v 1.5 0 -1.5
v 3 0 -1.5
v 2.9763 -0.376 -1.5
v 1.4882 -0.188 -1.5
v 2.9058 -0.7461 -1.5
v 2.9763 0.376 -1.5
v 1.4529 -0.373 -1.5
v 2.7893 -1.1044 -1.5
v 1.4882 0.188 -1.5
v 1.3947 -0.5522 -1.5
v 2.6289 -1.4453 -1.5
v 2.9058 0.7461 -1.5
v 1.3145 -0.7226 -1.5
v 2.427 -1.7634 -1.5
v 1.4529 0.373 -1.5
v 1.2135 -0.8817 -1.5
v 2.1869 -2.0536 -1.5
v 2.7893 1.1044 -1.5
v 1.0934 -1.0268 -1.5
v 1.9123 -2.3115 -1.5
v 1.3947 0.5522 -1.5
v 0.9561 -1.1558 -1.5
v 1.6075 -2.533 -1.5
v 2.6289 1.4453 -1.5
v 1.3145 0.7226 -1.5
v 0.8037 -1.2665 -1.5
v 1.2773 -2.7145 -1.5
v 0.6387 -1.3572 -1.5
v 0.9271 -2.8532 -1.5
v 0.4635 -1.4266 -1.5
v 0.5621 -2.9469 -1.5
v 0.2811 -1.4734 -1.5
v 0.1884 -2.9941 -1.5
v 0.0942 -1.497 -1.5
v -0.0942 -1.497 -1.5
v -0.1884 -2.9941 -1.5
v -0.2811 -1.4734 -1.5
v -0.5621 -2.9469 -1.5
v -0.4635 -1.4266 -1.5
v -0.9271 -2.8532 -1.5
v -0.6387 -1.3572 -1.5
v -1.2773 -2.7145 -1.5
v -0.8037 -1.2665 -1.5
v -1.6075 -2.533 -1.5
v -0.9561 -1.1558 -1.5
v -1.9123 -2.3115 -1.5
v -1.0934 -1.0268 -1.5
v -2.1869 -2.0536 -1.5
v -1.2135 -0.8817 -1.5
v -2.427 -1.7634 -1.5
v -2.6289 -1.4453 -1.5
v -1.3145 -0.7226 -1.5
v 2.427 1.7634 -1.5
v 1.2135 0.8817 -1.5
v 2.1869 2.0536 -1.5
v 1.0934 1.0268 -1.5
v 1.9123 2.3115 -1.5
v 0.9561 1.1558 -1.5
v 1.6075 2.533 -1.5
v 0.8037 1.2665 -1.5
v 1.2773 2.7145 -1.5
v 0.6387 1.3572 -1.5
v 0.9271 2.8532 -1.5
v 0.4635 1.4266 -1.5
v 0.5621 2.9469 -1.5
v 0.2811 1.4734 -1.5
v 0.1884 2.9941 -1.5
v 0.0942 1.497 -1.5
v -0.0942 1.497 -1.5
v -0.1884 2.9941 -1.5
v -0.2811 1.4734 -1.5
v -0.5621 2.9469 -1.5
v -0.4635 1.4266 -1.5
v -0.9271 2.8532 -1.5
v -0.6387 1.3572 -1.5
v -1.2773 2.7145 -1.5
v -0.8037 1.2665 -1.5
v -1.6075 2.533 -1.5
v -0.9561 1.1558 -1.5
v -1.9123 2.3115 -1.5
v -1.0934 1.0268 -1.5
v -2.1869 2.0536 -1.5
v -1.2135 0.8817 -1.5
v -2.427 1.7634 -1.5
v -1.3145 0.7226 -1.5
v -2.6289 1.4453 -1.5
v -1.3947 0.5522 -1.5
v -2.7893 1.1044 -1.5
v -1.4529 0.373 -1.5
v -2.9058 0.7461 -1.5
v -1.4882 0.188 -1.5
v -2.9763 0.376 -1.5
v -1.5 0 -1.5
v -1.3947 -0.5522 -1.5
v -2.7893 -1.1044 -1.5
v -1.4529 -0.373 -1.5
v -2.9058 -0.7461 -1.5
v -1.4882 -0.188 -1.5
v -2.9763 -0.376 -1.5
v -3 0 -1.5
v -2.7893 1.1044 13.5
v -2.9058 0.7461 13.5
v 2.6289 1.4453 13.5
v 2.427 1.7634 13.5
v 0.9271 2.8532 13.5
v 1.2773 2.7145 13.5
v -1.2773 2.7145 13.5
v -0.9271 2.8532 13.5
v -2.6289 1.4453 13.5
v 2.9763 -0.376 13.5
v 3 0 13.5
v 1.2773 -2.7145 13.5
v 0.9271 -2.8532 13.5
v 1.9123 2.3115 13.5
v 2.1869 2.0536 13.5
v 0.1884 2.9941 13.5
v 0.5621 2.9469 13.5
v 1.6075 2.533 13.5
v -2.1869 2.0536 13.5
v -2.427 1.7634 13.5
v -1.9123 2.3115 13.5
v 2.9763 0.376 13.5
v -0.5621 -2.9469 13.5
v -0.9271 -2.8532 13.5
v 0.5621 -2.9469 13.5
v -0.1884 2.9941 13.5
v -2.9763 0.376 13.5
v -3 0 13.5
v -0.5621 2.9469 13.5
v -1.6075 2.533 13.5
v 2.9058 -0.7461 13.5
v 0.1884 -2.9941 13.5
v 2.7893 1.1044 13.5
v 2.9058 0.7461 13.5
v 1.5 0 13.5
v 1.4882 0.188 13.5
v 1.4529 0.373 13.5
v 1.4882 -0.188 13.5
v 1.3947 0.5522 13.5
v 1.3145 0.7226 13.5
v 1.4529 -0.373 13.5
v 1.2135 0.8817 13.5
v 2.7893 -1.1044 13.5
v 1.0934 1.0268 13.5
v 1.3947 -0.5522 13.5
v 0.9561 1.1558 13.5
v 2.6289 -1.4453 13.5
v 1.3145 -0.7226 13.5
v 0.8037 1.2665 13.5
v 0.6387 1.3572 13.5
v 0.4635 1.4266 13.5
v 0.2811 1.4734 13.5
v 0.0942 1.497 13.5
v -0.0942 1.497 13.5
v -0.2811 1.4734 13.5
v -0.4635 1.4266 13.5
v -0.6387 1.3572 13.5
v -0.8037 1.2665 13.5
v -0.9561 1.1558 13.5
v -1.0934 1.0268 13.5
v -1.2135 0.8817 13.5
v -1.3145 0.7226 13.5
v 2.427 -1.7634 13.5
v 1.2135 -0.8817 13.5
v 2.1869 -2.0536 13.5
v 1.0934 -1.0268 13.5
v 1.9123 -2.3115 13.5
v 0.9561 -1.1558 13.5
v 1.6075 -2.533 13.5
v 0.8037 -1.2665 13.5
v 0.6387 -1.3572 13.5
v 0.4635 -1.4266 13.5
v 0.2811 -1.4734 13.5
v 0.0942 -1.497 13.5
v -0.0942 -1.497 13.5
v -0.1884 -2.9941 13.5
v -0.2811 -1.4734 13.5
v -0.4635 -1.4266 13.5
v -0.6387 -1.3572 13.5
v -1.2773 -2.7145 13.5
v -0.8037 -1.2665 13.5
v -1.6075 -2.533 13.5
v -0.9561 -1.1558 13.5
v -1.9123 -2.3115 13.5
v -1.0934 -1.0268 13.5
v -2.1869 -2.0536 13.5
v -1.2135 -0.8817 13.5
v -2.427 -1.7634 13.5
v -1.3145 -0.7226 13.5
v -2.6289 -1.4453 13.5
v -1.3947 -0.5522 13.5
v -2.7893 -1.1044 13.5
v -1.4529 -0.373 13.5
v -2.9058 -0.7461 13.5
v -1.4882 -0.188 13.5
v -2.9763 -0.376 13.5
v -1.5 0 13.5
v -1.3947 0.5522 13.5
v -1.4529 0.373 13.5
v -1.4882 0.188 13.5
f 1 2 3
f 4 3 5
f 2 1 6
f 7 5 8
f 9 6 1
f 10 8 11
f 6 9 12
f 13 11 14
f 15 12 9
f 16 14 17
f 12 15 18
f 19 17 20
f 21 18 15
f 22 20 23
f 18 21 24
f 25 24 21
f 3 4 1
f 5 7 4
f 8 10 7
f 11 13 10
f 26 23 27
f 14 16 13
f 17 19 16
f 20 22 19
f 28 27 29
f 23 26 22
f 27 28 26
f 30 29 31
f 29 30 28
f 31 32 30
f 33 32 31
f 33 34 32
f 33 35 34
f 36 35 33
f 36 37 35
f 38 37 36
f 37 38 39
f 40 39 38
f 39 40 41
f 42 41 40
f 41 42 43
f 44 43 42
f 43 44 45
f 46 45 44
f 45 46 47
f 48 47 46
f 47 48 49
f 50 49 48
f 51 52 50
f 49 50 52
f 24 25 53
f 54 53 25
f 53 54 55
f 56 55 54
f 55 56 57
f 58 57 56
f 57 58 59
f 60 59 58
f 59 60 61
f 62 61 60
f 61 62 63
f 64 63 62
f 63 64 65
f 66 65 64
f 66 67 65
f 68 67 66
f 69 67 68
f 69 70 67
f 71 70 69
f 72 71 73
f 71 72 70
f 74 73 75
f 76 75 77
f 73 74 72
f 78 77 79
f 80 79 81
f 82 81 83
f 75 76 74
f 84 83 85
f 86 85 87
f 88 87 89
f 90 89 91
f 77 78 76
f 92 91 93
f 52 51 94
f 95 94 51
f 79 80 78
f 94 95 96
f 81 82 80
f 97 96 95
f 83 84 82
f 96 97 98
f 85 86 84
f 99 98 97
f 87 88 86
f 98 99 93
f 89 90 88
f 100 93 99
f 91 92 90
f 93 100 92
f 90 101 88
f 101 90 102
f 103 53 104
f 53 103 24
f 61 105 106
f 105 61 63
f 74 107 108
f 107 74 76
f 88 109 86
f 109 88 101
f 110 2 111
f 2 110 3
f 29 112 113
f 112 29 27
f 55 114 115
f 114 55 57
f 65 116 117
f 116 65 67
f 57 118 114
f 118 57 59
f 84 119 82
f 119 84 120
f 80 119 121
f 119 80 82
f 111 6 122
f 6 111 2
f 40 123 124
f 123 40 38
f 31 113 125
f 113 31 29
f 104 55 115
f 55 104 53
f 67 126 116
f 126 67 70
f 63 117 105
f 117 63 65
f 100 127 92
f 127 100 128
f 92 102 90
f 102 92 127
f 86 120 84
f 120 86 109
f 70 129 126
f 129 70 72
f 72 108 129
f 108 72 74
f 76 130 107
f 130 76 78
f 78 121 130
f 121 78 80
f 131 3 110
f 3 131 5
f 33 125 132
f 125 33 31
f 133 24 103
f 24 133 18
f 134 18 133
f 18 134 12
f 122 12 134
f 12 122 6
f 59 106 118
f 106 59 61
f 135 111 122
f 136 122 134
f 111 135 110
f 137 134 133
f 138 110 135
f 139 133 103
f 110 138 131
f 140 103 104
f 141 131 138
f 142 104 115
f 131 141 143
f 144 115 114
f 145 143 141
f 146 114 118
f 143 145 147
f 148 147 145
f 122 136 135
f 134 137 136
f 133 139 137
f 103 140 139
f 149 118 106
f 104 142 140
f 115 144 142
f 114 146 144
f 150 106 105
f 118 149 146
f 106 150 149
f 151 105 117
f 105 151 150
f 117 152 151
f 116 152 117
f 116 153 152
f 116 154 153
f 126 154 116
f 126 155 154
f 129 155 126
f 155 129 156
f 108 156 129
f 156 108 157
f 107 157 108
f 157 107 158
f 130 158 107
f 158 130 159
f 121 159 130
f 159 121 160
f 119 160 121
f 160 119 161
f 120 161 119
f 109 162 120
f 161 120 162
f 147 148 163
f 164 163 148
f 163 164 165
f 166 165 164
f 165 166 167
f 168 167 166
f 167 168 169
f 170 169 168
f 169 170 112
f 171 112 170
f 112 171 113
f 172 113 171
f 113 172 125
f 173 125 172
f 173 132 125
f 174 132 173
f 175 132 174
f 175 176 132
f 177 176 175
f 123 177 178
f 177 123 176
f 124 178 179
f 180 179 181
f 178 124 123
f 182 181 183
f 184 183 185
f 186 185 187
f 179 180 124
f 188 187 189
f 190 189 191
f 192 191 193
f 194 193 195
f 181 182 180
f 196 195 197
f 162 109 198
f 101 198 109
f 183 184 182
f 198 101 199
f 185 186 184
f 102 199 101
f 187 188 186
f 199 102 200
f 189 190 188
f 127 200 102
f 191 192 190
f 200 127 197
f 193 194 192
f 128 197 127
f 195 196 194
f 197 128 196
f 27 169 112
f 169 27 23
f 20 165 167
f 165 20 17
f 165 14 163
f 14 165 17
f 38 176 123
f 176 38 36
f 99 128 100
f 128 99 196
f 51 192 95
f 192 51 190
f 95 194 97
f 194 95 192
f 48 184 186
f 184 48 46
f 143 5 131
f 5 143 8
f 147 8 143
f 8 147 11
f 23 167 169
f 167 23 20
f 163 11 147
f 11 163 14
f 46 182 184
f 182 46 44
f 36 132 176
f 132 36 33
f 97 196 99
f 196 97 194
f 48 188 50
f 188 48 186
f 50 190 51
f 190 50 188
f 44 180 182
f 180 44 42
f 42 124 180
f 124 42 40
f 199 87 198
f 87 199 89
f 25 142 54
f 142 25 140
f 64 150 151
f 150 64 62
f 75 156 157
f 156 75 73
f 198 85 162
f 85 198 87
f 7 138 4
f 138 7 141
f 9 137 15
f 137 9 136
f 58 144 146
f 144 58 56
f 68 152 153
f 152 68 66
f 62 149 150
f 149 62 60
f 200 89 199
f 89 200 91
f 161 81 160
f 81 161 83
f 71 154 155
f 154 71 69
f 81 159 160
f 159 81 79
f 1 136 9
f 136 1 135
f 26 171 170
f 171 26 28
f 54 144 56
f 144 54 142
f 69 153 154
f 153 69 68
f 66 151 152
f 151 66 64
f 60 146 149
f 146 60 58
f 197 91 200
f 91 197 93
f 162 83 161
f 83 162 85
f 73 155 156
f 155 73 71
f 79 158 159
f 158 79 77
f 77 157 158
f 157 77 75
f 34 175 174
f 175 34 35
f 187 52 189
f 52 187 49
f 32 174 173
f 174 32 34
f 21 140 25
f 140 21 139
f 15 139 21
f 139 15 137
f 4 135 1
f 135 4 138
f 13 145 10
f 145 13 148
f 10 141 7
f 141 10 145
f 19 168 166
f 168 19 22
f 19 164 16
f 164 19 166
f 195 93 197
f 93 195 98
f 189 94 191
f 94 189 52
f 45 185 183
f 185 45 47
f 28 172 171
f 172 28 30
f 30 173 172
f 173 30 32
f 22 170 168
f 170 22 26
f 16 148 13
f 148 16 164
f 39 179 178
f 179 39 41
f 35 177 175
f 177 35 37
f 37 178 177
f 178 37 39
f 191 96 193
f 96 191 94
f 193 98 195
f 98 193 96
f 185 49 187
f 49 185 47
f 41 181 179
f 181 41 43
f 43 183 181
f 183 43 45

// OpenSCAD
$fn = 50;


difference() {
	union() {
		translate(v = [0, 0, -1.5000000000]) {
			cylinder(h = 3, r = 1.0000000000);
		}
		translate(v = [0, 0, -1.5000000000]) {
			cylinder(h = 15, r = 3.0000000000);
		}
	}
	union() {
		translate(v = [0, 0, -50.0000000000]) {
			cylinder(h = 100, r = 1.5000000000);
		}
	}
}
